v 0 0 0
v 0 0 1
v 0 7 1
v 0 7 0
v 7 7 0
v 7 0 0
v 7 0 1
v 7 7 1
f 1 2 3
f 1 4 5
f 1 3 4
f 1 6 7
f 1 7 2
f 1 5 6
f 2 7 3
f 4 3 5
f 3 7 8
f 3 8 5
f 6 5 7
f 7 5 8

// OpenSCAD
/* Warning, this is a very basic generator with a lot of approximation 
input data : [VQFN, Y9X, 7x7x1.0mm, 48, , B, C04-00431B]
generated by com.zoubworld.electronics.cad.model3d.Basic
Date : Sun Feb 15 10:50:48 CET 2026
*/

//body
color("black")
translate([0,0,0])
cube([7.0,7.0,1.0], center=false);
